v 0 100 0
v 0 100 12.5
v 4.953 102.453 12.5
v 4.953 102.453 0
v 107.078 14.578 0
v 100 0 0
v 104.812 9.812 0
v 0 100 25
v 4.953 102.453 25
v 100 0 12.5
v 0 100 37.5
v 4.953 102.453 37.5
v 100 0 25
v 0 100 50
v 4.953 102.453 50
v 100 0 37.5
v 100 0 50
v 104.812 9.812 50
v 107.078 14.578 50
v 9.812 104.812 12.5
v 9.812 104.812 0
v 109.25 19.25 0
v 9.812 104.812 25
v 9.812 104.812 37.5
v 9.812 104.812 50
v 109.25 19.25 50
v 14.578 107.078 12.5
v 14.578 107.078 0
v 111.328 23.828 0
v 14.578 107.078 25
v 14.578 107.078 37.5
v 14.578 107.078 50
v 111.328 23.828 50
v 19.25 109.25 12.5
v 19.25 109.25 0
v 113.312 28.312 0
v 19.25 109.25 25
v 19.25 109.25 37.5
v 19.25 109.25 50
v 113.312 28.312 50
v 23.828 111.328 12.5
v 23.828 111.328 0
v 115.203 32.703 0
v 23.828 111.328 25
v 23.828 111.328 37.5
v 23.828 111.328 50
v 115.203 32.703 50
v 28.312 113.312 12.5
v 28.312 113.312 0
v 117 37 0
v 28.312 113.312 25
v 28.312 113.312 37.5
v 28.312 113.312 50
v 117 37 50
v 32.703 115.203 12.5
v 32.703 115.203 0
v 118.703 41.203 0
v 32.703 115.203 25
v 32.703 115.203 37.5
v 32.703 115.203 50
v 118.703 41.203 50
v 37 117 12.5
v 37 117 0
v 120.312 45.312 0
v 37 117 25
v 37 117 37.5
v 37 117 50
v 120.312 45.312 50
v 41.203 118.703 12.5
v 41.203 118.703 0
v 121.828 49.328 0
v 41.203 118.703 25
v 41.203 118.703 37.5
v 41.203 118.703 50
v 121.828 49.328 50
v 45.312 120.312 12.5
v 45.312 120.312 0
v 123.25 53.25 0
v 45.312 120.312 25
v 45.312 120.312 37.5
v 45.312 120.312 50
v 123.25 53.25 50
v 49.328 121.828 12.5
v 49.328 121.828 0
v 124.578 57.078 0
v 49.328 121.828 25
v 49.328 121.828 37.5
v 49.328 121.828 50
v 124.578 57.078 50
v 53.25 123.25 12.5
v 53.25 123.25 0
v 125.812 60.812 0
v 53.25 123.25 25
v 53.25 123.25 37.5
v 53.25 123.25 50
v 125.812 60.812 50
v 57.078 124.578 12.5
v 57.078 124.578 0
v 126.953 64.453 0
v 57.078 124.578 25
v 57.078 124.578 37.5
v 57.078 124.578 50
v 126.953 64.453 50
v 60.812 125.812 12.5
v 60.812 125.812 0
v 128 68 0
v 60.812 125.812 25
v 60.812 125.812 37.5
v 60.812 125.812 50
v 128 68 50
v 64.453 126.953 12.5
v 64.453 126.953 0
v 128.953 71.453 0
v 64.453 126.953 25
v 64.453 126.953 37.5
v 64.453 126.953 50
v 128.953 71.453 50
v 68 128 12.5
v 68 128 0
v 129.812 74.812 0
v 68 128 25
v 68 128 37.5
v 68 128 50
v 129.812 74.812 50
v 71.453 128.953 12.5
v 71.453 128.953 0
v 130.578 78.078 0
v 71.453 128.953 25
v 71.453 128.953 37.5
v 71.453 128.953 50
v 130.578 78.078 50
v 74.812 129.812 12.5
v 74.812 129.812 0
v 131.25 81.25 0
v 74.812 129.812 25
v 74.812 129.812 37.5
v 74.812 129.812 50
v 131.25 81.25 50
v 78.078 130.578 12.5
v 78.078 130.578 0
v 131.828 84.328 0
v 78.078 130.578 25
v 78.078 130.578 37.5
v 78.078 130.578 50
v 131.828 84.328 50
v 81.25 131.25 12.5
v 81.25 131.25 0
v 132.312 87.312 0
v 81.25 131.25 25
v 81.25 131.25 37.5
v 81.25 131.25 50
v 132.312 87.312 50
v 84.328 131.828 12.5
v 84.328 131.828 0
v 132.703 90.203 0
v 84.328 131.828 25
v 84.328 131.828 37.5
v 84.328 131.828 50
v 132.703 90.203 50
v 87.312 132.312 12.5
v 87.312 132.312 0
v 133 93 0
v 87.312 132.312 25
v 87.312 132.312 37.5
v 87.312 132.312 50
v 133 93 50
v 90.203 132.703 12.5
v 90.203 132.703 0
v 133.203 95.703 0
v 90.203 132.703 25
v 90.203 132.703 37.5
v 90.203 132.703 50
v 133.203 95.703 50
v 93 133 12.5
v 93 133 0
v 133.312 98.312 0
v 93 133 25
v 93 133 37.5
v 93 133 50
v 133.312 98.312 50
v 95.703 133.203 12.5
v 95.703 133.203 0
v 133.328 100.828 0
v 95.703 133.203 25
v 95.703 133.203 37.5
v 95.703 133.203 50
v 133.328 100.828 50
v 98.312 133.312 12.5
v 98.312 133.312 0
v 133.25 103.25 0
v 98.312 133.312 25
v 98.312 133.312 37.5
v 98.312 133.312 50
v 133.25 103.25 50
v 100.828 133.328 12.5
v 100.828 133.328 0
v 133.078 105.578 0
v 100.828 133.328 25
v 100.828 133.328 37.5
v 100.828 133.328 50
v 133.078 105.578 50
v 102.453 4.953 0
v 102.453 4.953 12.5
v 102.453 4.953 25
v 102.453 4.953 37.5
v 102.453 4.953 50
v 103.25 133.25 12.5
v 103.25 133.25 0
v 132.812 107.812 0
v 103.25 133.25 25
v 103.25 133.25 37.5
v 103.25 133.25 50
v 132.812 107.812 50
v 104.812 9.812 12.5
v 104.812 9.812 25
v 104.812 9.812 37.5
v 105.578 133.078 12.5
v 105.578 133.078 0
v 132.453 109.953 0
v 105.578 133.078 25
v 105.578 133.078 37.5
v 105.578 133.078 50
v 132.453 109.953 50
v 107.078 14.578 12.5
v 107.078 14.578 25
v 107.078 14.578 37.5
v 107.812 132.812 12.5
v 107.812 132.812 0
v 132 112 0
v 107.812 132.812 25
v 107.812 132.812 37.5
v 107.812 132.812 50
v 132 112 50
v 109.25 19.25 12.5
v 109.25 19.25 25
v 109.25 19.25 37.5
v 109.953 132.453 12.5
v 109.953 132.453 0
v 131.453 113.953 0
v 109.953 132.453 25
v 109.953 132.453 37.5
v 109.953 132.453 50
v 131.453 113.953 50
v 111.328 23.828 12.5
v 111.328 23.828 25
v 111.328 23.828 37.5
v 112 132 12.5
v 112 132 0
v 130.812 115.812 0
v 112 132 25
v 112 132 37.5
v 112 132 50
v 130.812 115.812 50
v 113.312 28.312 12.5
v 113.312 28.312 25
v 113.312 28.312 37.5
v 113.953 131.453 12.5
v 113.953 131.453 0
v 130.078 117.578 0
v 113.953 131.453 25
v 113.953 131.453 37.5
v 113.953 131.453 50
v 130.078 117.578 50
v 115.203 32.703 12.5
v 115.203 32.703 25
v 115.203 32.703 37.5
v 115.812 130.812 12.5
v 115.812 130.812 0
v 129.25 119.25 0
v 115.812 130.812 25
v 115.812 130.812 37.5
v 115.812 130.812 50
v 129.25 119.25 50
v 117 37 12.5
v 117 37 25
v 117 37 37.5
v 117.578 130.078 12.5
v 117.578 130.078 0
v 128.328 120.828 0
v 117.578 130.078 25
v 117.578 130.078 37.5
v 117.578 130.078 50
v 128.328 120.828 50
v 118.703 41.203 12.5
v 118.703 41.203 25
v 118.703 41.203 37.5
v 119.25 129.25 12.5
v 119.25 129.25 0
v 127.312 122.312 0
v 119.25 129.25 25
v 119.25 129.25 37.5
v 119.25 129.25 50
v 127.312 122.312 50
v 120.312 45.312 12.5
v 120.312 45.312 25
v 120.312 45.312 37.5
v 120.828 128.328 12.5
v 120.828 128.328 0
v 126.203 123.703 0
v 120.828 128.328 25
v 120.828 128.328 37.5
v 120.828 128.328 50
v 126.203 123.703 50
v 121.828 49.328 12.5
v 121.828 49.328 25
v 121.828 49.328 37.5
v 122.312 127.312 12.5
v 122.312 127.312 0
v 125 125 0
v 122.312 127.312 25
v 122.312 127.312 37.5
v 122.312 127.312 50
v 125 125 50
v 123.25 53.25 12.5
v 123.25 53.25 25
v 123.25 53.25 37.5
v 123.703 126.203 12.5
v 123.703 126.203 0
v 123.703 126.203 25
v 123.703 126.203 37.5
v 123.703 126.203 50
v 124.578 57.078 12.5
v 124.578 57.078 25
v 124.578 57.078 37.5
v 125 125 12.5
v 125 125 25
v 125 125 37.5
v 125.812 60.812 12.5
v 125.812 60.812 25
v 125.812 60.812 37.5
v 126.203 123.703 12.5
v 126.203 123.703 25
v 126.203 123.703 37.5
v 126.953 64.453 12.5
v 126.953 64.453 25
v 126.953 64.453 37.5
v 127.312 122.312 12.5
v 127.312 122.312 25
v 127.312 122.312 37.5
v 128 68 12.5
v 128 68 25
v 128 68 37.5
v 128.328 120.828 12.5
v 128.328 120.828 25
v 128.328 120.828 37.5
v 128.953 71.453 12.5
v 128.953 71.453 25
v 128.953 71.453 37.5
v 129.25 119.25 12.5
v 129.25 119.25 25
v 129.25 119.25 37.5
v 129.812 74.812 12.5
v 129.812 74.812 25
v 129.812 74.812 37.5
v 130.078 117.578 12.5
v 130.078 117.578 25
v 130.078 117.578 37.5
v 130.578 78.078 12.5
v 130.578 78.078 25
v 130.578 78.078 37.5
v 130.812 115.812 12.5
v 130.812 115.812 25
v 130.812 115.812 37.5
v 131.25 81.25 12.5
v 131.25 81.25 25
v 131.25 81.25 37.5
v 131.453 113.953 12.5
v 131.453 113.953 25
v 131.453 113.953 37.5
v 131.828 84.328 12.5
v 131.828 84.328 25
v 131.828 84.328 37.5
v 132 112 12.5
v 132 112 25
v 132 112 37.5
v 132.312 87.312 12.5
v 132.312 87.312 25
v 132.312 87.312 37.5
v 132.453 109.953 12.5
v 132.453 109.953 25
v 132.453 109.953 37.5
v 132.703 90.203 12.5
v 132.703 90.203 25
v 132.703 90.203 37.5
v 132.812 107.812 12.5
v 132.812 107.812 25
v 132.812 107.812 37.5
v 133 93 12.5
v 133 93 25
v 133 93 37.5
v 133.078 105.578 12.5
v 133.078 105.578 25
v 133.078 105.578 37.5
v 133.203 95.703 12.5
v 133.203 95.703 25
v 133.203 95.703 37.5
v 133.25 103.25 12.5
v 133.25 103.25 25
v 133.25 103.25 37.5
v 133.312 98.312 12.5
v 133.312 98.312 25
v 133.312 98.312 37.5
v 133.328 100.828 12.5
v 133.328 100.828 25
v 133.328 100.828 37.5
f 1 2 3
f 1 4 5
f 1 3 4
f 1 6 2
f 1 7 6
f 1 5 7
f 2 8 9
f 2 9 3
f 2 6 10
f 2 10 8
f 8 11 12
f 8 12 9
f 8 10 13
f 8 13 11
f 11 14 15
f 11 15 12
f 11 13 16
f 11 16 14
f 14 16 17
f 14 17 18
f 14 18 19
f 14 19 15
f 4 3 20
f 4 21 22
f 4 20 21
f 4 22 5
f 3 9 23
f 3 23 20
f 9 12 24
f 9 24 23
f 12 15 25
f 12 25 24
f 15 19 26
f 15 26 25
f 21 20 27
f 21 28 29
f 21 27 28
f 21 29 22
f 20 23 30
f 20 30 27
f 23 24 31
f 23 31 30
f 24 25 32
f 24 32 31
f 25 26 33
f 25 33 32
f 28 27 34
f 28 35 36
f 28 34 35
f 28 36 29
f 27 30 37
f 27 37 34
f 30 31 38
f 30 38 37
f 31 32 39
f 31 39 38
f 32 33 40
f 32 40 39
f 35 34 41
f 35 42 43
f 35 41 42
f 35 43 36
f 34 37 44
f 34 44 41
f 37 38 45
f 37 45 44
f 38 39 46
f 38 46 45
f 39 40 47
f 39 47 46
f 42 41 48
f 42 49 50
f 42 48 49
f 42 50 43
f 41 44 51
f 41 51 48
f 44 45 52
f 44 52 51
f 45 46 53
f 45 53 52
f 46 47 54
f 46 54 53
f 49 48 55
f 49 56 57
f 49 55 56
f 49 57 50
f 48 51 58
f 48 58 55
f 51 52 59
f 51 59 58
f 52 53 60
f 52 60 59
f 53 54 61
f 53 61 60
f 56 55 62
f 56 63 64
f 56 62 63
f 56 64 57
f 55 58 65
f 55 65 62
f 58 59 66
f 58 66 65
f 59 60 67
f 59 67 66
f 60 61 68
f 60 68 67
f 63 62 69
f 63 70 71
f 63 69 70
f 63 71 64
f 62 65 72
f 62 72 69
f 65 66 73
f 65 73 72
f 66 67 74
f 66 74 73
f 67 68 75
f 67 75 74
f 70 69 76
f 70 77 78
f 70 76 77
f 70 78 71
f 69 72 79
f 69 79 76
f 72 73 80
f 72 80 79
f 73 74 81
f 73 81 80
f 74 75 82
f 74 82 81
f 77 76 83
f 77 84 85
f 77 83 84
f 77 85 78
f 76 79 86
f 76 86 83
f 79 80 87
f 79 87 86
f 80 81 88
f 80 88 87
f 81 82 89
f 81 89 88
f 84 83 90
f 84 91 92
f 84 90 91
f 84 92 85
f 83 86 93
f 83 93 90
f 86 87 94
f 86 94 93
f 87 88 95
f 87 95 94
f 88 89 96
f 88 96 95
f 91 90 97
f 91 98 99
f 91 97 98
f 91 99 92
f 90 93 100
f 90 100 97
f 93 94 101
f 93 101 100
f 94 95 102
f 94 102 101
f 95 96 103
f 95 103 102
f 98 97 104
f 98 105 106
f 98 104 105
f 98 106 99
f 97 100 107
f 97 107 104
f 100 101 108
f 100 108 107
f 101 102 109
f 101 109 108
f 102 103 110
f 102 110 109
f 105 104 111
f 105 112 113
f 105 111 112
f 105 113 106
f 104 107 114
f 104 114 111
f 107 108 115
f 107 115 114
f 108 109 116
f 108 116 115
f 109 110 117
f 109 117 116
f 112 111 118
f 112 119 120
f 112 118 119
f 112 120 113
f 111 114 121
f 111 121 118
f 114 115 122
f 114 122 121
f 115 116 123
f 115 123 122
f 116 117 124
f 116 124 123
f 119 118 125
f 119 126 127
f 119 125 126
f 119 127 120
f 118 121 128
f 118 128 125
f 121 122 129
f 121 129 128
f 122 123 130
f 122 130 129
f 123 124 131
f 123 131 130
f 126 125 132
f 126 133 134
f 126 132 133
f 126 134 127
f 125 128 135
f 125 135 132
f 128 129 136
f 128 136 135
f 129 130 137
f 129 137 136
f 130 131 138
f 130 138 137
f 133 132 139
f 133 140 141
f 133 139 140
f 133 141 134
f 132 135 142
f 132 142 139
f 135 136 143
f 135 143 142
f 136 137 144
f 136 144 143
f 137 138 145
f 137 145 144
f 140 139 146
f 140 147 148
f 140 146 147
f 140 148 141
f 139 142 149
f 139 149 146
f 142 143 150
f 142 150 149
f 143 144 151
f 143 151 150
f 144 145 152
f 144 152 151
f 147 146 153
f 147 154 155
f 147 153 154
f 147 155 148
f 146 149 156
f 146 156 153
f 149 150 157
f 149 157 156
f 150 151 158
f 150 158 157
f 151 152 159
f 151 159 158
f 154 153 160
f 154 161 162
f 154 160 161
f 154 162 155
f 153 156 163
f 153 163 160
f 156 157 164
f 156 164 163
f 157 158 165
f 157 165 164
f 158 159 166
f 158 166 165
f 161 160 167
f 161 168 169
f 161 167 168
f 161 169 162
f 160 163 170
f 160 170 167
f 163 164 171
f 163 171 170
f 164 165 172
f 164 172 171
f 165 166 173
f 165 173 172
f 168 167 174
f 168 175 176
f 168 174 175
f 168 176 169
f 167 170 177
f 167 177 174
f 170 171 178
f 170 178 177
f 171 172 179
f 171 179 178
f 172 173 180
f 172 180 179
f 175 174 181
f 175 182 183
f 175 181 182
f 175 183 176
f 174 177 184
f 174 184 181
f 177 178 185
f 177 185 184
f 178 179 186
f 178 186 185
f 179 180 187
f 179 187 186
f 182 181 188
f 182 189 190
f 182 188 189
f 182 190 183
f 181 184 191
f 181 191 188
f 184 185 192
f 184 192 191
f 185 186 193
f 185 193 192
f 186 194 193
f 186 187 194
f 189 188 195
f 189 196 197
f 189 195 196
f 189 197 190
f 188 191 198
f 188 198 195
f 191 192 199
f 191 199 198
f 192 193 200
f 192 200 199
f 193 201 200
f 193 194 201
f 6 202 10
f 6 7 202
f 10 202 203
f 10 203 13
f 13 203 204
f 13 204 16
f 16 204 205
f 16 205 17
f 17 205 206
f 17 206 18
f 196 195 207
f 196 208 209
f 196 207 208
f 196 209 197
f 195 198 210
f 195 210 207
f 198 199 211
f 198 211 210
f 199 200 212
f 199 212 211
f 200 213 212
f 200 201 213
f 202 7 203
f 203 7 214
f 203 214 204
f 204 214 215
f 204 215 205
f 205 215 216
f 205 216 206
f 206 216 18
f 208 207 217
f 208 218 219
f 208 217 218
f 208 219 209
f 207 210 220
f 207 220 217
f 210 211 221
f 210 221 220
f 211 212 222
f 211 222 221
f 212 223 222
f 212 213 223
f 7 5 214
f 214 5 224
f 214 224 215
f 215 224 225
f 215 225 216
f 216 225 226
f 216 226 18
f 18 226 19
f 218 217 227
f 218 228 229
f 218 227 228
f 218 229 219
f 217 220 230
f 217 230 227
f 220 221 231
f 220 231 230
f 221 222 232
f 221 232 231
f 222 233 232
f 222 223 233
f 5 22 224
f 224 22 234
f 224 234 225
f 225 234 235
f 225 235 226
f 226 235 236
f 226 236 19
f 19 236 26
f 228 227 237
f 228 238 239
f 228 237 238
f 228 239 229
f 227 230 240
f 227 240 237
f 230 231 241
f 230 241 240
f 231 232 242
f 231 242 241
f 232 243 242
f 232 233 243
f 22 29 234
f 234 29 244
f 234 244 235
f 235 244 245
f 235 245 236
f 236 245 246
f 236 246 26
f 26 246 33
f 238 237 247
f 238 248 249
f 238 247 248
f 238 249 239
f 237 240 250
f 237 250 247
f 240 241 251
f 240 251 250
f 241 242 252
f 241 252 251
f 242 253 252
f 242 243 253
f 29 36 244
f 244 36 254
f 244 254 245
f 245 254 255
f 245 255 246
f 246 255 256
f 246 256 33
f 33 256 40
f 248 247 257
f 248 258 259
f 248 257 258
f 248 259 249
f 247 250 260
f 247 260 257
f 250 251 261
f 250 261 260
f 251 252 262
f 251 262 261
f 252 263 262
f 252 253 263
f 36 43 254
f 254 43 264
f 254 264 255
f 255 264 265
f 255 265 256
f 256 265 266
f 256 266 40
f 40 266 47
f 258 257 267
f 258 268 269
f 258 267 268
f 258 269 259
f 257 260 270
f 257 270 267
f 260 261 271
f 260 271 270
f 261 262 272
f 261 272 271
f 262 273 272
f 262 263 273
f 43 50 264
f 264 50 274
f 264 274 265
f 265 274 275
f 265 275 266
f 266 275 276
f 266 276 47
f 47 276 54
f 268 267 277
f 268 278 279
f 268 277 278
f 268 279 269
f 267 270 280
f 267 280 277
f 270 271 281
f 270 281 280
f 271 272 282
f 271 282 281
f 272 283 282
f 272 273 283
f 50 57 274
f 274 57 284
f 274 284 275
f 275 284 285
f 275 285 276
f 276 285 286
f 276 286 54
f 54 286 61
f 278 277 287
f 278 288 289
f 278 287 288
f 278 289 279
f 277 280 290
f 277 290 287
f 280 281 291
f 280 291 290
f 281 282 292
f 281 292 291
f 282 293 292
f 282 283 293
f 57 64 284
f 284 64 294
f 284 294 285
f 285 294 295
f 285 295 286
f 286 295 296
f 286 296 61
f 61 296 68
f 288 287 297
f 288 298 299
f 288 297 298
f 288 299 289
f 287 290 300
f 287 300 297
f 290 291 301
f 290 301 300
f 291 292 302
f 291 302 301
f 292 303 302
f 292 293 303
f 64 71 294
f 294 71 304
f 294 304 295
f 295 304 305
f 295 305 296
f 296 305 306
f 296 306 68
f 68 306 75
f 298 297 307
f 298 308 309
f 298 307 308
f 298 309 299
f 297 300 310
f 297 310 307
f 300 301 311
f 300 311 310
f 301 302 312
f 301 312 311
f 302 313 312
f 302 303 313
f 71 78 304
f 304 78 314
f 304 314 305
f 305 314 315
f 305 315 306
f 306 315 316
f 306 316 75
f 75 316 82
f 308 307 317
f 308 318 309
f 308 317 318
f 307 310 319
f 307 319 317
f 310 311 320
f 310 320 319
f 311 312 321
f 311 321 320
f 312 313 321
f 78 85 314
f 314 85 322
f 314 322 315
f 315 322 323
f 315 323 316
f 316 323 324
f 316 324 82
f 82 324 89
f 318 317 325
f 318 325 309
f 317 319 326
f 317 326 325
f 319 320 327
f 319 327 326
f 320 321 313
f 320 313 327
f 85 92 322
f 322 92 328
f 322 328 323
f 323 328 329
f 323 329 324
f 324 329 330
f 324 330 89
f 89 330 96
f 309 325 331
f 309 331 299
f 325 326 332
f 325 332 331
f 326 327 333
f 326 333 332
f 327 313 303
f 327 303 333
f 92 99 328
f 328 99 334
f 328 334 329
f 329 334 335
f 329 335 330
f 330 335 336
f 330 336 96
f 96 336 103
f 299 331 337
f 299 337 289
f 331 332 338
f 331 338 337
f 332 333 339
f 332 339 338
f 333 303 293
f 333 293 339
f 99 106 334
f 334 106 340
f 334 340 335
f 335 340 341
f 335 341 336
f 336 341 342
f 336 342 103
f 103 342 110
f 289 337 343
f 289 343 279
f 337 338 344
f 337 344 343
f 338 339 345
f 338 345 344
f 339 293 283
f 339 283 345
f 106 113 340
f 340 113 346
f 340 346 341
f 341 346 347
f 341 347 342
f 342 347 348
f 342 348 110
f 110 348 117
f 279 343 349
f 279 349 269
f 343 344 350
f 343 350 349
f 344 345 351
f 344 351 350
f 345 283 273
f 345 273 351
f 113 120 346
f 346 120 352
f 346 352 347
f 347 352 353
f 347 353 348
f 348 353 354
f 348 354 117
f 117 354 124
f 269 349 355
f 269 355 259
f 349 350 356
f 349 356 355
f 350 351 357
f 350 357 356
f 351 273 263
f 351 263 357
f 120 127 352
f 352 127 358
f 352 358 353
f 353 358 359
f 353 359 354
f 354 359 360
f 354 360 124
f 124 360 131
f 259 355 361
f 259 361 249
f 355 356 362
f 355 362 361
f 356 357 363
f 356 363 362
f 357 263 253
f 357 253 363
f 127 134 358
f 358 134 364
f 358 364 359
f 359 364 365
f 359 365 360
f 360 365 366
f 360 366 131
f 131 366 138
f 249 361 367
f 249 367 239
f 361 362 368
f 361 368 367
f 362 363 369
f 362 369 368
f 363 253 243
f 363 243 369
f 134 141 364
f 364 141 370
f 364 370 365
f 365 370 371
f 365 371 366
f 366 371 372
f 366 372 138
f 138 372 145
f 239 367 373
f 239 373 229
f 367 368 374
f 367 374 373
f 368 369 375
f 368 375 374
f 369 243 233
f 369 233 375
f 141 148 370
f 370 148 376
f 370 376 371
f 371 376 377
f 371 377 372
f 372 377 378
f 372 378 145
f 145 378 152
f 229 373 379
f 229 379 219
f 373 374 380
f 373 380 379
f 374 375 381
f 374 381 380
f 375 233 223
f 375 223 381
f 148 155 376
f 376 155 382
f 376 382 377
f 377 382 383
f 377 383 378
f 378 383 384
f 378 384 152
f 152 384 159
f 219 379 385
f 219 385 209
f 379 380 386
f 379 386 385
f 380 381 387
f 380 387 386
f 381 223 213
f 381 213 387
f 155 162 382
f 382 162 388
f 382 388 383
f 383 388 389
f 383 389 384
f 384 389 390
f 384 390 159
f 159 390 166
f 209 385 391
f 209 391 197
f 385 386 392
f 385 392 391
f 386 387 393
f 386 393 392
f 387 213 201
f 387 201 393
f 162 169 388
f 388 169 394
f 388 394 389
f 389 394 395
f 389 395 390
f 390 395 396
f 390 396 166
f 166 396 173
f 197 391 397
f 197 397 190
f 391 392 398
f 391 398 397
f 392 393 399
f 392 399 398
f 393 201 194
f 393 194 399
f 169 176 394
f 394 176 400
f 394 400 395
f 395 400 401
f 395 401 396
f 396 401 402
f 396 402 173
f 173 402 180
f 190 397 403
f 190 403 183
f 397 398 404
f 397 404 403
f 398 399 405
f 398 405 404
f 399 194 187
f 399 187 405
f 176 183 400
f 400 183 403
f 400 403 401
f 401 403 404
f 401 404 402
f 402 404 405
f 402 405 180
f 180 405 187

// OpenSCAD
// Start: lazy_union
default_5_default_5();
// End: lazy_union

// Modules.

// 'PartMaterial undef-default - default 5.0'
module default_5_default_5() {
  // 'None : _combine_solids_and_holes'
  union() {
    // 'example4 : _combine_solids_and_holes'
    union() {
      // 'example4'
      linear_extrude(height=50.0, twist=0.0, slices=4, scale=[1.0, 1.0], $fn=80) {
        polygon(points=[[100.0, 0.0], [102.453125, 4.953125], [104.8125, 9.8125], [107.078125, 14.578125], [109.25, 19.25], [111.328125, 23.828125], [113.3125, 28.3125], [115.203125, 32.703125], [117.0, 37.0], [118.703125, 41.203125], [120.3125, 45.3125], [121.828125, 49.32812500000001], [123.25, 53.25], [124.578125, 57.078125], [125.8125, 60.8125], [126.953125, 64.453125], [128.0, 68.0], [128.953125, 71.453125], [129.8125, 74.8125], [130.578125, 78.078125], [131.25, 81.25], [131.828125, 84.328125], [132.3125, 87.31250000000001], [132.703125, 90.20312499999999], [133.0, 93.0], [133.203125, 95.703125], [133.3125, 98.3125], [133.328125, 100.828125], [133.25, 103.25], [133.078125, 105.578125], [132.8125, 107.8125], [132.453125, 109.953125], [132.0, 112.0], [131.453125, 113.953125], [130.8125, 115.8125], [130.078125, 117.578125], [129.25, 119.25], [128.328125, 120.828125], [127.3125, 122.3125], [126.203125, 123.703125], [125.0, 125.0], [123.70312499999999, 126.20312499999997], [122.3125, 127.3125], [120.82812500000001, 128.328125], [119.25, 129.25], [117.578125, 130.078125], [115.8125, 130.8125], [113.95312499999999, 131.453125], [112.0, 132.0], [109.95312499999999, 132.453125], [107.8125, 132.8125], [105.578125, 133.078125], [103.24999999999999, 133.25], [100.828125, 133.328125], [98.31249999999997, 133.31249999999997], [95.703125, 133.203125], [93.00000000000003, 133.00000000000003], [90.203125, 132.703125], [87.3125, 132.3125], [84.328125, 131.828125], [81.25, 131.25], [78.07812500000003, 130.57812500000003], [74.81249999999997, 129.81249999999997], [71.453125, 128.953125], [67.99999999999997, 127.99999999999997], [64.453125, 126.953125], [60.81250000000003, 125.81250000000003], [57.078125, 124.578125], [53.25000000000003, 123.25000000000003], [49.32812499999997, 121.82812499999997], [45.3125, 120.3125], [41.20312500000003, 118.70312500000003], [36.99999999999997, 116.99999999999997], [32.703125, 115.203125], [28.3125, 113.3125], [23.828125, 111.328125], [19.25, 109.25], [14.578124999999943, 107.07812499999994], [9.8125, 104.8125], [4.953125, 102.453125], [0.0, 100.0]]);
      }
    }
  }
} // end module default_5_default_5
